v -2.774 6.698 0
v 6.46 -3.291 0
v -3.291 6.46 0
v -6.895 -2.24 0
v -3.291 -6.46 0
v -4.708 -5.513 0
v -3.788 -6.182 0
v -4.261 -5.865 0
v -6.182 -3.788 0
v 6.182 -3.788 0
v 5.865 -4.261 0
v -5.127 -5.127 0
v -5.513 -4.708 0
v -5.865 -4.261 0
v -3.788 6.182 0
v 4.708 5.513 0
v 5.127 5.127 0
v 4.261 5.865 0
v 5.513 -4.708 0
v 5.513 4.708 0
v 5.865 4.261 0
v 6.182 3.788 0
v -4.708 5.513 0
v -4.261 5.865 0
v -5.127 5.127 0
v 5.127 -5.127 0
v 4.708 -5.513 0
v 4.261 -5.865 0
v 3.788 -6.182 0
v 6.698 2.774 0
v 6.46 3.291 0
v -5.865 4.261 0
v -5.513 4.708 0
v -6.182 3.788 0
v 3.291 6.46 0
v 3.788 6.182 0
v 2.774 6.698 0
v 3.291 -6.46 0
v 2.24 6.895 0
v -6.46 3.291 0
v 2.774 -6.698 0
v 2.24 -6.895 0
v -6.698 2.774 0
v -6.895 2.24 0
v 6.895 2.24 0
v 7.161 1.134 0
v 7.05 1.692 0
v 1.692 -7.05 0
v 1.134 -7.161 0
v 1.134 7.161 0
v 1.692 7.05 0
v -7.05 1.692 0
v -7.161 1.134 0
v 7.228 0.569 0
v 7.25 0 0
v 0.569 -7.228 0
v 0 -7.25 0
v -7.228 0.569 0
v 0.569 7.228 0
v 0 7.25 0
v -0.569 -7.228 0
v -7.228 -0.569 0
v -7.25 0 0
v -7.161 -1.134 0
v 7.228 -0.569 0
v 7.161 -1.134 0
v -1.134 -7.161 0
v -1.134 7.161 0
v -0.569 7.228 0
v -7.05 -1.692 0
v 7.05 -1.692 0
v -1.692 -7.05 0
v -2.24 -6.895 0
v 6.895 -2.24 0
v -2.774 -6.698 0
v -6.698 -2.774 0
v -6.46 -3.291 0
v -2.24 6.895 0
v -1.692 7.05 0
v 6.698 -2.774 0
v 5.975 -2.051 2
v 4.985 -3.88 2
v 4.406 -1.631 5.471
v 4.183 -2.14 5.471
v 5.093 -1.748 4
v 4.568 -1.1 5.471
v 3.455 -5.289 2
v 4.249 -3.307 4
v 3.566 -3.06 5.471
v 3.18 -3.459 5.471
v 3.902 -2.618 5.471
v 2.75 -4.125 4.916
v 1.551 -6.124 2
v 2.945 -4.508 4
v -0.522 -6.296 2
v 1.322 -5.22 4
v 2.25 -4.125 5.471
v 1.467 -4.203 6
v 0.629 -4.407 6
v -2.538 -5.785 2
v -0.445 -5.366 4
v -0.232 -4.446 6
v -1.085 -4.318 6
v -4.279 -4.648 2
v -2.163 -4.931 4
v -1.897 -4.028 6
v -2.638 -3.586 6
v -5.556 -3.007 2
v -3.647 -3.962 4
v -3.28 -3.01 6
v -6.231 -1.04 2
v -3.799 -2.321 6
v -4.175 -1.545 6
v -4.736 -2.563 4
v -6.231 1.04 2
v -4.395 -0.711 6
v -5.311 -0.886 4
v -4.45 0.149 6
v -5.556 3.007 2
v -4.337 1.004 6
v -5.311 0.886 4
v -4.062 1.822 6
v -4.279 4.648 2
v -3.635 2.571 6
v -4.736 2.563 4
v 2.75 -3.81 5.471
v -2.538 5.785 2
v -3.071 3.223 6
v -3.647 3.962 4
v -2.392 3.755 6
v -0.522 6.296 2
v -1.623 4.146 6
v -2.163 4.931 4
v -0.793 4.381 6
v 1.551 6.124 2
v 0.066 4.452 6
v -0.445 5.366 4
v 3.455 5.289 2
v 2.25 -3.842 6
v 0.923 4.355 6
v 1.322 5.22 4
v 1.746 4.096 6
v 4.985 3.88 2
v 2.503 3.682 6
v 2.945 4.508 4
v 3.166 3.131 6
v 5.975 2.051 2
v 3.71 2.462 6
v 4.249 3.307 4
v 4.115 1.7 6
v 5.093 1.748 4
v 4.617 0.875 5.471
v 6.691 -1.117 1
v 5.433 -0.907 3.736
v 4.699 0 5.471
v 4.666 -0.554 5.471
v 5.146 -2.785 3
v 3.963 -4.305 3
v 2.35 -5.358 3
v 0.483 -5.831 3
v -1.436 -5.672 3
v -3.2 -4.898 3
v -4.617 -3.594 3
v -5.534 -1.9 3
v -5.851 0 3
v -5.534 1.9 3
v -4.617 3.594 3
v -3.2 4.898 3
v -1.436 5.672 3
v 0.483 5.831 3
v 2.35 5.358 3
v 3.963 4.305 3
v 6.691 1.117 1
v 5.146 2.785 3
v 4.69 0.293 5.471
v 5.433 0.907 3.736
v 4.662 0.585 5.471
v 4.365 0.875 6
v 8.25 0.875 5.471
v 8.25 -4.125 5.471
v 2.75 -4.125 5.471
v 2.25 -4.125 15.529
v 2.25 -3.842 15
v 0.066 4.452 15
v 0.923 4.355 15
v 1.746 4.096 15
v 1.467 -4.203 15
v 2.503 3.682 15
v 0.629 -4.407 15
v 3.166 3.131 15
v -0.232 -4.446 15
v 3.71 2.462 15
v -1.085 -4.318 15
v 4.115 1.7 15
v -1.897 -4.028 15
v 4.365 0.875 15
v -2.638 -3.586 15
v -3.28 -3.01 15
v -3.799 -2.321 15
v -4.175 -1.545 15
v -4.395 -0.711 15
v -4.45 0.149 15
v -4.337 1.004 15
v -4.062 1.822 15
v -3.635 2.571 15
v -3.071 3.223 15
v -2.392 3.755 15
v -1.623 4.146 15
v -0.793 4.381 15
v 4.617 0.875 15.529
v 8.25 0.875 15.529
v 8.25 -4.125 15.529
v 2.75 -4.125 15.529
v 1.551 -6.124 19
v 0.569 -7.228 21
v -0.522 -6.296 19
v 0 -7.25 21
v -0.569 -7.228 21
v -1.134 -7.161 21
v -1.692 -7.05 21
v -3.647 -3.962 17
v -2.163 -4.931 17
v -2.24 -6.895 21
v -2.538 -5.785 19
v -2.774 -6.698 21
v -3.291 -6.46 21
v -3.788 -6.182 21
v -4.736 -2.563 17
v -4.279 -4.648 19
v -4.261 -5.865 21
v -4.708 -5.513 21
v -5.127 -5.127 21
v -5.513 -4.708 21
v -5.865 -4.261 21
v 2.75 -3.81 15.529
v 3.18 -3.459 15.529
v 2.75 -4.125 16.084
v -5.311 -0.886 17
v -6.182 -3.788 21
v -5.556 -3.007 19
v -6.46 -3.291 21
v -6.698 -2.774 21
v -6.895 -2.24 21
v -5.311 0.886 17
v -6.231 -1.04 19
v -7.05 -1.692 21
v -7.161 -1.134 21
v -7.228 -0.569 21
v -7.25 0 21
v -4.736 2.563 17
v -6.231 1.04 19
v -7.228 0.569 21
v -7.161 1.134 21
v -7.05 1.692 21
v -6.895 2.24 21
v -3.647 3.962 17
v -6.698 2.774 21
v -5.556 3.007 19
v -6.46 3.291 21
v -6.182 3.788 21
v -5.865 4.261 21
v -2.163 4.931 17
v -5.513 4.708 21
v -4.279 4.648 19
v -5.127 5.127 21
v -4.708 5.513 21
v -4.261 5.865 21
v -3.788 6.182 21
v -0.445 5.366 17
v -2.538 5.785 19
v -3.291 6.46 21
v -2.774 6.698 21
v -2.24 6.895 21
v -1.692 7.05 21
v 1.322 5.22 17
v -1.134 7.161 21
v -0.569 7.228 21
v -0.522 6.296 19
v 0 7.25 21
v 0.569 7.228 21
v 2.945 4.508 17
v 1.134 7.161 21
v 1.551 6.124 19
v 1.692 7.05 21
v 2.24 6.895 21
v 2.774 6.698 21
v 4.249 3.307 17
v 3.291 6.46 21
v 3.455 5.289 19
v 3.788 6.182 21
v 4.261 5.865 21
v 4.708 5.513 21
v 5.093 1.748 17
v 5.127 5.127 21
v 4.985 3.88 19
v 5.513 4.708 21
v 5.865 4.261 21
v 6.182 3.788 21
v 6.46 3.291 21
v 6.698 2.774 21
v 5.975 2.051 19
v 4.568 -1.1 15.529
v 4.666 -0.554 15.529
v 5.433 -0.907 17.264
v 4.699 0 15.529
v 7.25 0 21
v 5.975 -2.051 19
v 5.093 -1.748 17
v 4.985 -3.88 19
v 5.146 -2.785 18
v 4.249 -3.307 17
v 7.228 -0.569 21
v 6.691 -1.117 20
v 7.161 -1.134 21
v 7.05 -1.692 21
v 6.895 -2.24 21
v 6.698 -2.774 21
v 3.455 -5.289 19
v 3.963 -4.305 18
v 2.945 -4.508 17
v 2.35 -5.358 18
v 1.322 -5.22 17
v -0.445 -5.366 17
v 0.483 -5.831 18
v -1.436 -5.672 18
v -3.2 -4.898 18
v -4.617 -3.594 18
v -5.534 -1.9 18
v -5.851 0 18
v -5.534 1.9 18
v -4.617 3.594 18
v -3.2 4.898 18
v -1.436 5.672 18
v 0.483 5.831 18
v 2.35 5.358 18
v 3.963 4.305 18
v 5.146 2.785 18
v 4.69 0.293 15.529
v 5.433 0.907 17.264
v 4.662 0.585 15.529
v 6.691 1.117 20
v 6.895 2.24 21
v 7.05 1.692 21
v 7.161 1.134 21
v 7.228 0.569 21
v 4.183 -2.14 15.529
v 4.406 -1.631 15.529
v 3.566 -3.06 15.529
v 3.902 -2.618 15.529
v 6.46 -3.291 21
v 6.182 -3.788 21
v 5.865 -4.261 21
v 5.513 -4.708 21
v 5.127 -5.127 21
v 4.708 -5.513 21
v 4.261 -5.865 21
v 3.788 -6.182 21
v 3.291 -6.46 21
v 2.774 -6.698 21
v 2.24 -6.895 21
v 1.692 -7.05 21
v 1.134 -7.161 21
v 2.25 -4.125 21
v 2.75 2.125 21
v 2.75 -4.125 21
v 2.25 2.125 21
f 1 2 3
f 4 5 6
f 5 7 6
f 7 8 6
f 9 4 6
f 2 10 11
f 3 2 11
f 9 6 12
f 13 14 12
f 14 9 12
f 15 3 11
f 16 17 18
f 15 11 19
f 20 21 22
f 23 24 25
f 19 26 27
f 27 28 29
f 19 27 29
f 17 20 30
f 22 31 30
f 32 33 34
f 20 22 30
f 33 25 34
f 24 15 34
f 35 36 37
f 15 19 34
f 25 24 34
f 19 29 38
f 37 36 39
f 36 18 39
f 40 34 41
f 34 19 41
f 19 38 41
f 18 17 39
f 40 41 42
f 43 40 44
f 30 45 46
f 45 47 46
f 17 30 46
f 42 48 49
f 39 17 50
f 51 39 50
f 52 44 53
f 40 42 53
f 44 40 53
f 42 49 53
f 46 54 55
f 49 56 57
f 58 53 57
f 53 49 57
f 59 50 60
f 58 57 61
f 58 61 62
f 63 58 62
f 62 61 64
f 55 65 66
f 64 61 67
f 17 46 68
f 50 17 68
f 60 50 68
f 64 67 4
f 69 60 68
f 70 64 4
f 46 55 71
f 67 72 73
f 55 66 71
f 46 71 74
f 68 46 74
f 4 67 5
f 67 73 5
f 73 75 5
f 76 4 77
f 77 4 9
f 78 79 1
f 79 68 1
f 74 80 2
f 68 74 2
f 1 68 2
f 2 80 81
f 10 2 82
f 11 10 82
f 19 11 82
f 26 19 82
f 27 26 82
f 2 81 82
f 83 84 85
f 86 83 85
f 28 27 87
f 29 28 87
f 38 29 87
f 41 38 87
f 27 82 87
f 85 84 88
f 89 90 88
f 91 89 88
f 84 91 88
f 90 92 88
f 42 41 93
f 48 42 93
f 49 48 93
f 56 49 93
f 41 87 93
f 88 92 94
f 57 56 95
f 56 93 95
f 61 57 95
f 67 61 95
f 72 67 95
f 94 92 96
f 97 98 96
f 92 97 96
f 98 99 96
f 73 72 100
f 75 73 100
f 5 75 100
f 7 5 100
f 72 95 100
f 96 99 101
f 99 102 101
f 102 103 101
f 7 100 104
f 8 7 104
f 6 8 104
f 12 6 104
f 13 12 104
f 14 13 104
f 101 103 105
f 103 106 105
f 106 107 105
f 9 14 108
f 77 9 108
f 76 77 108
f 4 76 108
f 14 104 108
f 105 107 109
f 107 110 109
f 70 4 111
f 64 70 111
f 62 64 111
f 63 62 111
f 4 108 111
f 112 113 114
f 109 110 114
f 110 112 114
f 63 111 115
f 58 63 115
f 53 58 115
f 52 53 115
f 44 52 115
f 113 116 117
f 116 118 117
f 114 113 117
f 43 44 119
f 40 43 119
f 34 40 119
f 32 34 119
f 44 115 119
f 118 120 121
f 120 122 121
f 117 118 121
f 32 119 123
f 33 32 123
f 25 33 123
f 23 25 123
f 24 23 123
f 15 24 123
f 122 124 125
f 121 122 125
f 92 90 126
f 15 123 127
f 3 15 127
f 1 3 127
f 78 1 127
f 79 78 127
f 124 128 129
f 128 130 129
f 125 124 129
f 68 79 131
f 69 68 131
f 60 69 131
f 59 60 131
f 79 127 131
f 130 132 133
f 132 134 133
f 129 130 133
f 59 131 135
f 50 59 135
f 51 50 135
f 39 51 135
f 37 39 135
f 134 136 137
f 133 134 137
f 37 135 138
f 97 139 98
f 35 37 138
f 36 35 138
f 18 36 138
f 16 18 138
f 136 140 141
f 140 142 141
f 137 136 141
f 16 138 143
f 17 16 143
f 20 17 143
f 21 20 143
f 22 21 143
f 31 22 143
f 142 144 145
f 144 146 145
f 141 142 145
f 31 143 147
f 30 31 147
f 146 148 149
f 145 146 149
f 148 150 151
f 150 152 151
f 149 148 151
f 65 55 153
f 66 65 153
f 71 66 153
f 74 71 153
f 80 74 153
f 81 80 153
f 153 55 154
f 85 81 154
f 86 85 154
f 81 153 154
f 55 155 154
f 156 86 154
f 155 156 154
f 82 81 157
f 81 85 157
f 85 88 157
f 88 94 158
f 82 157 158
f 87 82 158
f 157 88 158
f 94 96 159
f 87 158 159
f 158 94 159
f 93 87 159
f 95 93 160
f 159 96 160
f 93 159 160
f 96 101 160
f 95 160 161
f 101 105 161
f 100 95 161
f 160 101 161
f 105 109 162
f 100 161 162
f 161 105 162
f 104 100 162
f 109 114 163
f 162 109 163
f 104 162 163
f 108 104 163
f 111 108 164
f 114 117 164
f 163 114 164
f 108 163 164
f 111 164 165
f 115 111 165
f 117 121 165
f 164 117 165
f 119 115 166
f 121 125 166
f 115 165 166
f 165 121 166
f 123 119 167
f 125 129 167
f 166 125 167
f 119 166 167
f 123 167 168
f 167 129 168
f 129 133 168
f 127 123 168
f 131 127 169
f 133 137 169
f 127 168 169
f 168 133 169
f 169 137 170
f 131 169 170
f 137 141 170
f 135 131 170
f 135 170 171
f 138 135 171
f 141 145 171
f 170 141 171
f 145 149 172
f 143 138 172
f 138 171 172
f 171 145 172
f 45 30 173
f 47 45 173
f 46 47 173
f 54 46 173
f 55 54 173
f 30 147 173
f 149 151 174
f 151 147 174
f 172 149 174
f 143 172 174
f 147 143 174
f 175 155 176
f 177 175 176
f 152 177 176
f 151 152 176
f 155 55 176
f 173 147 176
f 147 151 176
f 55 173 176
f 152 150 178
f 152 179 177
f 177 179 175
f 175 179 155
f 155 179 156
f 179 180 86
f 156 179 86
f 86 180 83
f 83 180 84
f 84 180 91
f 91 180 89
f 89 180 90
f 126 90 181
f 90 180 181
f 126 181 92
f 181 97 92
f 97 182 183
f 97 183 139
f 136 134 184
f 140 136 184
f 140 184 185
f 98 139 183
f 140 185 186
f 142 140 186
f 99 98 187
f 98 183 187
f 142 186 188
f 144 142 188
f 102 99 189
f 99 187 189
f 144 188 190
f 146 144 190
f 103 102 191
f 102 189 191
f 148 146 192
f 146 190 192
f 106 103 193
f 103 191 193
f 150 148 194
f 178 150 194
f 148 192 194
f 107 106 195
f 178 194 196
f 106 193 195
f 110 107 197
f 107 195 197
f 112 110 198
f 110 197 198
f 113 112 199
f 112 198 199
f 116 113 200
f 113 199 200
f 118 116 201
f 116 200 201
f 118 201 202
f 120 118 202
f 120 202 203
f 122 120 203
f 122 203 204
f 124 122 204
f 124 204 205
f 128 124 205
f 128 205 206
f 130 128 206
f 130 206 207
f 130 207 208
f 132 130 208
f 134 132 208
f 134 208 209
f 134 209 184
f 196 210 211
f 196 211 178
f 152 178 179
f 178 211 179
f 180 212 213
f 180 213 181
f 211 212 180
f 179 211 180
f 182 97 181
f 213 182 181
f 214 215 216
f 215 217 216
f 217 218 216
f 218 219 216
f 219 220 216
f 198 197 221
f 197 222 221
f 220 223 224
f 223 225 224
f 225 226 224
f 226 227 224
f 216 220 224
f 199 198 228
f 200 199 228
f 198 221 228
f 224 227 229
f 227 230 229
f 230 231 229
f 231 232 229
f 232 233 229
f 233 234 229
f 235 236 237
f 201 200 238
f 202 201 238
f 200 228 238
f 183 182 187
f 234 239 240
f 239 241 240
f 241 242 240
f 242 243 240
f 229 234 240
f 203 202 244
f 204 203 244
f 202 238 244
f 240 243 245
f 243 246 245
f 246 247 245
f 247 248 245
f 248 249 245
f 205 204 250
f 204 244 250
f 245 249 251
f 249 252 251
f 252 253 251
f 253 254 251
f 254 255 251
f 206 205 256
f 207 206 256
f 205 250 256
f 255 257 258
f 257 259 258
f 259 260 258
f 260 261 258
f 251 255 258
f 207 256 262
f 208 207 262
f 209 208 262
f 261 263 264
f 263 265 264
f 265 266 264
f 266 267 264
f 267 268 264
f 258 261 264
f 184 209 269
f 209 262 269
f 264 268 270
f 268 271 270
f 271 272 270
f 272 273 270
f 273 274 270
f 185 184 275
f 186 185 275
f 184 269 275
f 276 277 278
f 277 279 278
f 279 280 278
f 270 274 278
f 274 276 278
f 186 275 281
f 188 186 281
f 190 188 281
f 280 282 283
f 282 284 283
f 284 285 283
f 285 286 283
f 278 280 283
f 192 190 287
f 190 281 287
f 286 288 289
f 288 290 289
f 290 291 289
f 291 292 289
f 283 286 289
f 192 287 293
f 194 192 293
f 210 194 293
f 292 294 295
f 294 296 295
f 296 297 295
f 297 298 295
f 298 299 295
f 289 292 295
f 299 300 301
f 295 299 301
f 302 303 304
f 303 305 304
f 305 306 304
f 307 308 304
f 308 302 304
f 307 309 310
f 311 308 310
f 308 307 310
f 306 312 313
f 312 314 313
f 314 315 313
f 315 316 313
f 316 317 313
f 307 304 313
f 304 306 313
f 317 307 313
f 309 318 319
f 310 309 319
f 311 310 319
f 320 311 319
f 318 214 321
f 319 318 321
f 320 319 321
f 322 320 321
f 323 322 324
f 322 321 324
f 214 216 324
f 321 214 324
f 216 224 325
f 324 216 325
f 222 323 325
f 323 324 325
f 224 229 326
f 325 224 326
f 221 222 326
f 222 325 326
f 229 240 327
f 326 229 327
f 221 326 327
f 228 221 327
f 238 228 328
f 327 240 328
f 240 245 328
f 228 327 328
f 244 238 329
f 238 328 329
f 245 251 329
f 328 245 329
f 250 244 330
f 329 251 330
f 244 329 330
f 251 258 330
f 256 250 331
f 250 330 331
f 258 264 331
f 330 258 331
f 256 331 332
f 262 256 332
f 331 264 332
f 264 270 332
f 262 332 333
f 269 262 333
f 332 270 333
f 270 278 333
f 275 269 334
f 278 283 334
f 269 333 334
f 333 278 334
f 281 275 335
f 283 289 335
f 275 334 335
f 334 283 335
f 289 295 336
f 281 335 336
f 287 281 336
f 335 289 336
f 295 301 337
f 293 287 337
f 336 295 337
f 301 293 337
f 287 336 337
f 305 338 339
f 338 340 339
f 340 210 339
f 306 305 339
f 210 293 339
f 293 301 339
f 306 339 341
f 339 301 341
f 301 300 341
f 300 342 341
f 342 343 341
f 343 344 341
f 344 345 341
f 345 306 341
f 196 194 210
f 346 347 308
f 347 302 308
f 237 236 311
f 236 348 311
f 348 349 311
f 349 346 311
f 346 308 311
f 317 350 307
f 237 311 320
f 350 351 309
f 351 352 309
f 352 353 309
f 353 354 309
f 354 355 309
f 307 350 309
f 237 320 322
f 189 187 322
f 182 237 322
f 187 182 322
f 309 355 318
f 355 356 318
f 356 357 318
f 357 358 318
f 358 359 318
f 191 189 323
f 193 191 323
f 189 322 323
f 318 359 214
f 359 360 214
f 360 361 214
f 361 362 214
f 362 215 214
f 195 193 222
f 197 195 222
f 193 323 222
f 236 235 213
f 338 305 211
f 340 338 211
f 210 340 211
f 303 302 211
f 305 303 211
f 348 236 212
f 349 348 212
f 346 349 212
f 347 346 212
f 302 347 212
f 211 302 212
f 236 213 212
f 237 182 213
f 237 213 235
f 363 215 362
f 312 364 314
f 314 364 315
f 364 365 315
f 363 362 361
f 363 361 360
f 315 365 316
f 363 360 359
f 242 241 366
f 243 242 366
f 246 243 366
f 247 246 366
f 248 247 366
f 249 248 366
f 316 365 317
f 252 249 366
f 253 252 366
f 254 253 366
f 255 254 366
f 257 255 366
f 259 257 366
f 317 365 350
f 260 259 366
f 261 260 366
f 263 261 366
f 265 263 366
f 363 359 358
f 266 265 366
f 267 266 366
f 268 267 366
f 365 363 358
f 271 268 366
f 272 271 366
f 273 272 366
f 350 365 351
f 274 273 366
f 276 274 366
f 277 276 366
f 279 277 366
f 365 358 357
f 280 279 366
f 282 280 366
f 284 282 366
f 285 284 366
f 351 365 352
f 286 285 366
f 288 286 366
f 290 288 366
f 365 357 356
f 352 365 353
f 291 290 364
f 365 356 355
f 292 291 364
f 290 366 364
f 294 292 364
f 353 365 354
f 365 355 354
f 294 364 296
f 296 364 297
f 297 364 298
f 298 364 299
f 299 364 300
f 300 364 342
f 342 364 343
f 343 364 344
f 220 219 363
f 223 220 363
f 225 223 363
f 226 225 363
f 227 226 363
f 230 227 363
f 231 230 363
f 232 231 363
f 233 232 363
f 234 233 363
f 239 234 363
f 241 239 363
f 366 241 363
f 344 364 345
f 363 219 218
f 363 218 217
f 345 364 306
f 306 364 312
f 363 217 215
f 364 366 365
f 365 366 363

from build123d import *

# Parameters (mm, degrees)
SKETCH001_W  = 0.5
SKETCH001_H  = 6.25
PAD_DEPTH    = 20
SKETCH002_W  = 6
SKETCH002_H  = 10.057596
PAD001_DEPTH = 5


with BuildPart() as part:
    # Sketch → Revolution (revolve)
    with BuildSketch(Plane.XZ):
        Polygon((0, 0), (7.25, 0), (4.452154, 6), (4.452154, 15), (7.25, 21), (0, 21), align=None)
    revolve(axis=Axis((0, 0, 0), (0, 0, 1)))

    # Sketch001 → Pad (new body)
    with BuildSketch(Plane(origin=(0, 0, 21), x_dir=(-1, 0, 0), z_dir=(0, 0, 1))):
        with Locations((-2.5, 1)):
            Rectangle(SKETCH001_W, SKETCH001_H)
    extrude(amount=-PAD_DEPTH)

    # Sketch002 → Pad001 (new body)
    with BuildSketch(Plane.XZ.offset(4.125)):
        with Locations((5.25, 10.5)):
            Rectangle(SKETCH002_W, SKETCH002_H)
    extrude(amount=-PAD001_DEPTH)


solid = part.part
